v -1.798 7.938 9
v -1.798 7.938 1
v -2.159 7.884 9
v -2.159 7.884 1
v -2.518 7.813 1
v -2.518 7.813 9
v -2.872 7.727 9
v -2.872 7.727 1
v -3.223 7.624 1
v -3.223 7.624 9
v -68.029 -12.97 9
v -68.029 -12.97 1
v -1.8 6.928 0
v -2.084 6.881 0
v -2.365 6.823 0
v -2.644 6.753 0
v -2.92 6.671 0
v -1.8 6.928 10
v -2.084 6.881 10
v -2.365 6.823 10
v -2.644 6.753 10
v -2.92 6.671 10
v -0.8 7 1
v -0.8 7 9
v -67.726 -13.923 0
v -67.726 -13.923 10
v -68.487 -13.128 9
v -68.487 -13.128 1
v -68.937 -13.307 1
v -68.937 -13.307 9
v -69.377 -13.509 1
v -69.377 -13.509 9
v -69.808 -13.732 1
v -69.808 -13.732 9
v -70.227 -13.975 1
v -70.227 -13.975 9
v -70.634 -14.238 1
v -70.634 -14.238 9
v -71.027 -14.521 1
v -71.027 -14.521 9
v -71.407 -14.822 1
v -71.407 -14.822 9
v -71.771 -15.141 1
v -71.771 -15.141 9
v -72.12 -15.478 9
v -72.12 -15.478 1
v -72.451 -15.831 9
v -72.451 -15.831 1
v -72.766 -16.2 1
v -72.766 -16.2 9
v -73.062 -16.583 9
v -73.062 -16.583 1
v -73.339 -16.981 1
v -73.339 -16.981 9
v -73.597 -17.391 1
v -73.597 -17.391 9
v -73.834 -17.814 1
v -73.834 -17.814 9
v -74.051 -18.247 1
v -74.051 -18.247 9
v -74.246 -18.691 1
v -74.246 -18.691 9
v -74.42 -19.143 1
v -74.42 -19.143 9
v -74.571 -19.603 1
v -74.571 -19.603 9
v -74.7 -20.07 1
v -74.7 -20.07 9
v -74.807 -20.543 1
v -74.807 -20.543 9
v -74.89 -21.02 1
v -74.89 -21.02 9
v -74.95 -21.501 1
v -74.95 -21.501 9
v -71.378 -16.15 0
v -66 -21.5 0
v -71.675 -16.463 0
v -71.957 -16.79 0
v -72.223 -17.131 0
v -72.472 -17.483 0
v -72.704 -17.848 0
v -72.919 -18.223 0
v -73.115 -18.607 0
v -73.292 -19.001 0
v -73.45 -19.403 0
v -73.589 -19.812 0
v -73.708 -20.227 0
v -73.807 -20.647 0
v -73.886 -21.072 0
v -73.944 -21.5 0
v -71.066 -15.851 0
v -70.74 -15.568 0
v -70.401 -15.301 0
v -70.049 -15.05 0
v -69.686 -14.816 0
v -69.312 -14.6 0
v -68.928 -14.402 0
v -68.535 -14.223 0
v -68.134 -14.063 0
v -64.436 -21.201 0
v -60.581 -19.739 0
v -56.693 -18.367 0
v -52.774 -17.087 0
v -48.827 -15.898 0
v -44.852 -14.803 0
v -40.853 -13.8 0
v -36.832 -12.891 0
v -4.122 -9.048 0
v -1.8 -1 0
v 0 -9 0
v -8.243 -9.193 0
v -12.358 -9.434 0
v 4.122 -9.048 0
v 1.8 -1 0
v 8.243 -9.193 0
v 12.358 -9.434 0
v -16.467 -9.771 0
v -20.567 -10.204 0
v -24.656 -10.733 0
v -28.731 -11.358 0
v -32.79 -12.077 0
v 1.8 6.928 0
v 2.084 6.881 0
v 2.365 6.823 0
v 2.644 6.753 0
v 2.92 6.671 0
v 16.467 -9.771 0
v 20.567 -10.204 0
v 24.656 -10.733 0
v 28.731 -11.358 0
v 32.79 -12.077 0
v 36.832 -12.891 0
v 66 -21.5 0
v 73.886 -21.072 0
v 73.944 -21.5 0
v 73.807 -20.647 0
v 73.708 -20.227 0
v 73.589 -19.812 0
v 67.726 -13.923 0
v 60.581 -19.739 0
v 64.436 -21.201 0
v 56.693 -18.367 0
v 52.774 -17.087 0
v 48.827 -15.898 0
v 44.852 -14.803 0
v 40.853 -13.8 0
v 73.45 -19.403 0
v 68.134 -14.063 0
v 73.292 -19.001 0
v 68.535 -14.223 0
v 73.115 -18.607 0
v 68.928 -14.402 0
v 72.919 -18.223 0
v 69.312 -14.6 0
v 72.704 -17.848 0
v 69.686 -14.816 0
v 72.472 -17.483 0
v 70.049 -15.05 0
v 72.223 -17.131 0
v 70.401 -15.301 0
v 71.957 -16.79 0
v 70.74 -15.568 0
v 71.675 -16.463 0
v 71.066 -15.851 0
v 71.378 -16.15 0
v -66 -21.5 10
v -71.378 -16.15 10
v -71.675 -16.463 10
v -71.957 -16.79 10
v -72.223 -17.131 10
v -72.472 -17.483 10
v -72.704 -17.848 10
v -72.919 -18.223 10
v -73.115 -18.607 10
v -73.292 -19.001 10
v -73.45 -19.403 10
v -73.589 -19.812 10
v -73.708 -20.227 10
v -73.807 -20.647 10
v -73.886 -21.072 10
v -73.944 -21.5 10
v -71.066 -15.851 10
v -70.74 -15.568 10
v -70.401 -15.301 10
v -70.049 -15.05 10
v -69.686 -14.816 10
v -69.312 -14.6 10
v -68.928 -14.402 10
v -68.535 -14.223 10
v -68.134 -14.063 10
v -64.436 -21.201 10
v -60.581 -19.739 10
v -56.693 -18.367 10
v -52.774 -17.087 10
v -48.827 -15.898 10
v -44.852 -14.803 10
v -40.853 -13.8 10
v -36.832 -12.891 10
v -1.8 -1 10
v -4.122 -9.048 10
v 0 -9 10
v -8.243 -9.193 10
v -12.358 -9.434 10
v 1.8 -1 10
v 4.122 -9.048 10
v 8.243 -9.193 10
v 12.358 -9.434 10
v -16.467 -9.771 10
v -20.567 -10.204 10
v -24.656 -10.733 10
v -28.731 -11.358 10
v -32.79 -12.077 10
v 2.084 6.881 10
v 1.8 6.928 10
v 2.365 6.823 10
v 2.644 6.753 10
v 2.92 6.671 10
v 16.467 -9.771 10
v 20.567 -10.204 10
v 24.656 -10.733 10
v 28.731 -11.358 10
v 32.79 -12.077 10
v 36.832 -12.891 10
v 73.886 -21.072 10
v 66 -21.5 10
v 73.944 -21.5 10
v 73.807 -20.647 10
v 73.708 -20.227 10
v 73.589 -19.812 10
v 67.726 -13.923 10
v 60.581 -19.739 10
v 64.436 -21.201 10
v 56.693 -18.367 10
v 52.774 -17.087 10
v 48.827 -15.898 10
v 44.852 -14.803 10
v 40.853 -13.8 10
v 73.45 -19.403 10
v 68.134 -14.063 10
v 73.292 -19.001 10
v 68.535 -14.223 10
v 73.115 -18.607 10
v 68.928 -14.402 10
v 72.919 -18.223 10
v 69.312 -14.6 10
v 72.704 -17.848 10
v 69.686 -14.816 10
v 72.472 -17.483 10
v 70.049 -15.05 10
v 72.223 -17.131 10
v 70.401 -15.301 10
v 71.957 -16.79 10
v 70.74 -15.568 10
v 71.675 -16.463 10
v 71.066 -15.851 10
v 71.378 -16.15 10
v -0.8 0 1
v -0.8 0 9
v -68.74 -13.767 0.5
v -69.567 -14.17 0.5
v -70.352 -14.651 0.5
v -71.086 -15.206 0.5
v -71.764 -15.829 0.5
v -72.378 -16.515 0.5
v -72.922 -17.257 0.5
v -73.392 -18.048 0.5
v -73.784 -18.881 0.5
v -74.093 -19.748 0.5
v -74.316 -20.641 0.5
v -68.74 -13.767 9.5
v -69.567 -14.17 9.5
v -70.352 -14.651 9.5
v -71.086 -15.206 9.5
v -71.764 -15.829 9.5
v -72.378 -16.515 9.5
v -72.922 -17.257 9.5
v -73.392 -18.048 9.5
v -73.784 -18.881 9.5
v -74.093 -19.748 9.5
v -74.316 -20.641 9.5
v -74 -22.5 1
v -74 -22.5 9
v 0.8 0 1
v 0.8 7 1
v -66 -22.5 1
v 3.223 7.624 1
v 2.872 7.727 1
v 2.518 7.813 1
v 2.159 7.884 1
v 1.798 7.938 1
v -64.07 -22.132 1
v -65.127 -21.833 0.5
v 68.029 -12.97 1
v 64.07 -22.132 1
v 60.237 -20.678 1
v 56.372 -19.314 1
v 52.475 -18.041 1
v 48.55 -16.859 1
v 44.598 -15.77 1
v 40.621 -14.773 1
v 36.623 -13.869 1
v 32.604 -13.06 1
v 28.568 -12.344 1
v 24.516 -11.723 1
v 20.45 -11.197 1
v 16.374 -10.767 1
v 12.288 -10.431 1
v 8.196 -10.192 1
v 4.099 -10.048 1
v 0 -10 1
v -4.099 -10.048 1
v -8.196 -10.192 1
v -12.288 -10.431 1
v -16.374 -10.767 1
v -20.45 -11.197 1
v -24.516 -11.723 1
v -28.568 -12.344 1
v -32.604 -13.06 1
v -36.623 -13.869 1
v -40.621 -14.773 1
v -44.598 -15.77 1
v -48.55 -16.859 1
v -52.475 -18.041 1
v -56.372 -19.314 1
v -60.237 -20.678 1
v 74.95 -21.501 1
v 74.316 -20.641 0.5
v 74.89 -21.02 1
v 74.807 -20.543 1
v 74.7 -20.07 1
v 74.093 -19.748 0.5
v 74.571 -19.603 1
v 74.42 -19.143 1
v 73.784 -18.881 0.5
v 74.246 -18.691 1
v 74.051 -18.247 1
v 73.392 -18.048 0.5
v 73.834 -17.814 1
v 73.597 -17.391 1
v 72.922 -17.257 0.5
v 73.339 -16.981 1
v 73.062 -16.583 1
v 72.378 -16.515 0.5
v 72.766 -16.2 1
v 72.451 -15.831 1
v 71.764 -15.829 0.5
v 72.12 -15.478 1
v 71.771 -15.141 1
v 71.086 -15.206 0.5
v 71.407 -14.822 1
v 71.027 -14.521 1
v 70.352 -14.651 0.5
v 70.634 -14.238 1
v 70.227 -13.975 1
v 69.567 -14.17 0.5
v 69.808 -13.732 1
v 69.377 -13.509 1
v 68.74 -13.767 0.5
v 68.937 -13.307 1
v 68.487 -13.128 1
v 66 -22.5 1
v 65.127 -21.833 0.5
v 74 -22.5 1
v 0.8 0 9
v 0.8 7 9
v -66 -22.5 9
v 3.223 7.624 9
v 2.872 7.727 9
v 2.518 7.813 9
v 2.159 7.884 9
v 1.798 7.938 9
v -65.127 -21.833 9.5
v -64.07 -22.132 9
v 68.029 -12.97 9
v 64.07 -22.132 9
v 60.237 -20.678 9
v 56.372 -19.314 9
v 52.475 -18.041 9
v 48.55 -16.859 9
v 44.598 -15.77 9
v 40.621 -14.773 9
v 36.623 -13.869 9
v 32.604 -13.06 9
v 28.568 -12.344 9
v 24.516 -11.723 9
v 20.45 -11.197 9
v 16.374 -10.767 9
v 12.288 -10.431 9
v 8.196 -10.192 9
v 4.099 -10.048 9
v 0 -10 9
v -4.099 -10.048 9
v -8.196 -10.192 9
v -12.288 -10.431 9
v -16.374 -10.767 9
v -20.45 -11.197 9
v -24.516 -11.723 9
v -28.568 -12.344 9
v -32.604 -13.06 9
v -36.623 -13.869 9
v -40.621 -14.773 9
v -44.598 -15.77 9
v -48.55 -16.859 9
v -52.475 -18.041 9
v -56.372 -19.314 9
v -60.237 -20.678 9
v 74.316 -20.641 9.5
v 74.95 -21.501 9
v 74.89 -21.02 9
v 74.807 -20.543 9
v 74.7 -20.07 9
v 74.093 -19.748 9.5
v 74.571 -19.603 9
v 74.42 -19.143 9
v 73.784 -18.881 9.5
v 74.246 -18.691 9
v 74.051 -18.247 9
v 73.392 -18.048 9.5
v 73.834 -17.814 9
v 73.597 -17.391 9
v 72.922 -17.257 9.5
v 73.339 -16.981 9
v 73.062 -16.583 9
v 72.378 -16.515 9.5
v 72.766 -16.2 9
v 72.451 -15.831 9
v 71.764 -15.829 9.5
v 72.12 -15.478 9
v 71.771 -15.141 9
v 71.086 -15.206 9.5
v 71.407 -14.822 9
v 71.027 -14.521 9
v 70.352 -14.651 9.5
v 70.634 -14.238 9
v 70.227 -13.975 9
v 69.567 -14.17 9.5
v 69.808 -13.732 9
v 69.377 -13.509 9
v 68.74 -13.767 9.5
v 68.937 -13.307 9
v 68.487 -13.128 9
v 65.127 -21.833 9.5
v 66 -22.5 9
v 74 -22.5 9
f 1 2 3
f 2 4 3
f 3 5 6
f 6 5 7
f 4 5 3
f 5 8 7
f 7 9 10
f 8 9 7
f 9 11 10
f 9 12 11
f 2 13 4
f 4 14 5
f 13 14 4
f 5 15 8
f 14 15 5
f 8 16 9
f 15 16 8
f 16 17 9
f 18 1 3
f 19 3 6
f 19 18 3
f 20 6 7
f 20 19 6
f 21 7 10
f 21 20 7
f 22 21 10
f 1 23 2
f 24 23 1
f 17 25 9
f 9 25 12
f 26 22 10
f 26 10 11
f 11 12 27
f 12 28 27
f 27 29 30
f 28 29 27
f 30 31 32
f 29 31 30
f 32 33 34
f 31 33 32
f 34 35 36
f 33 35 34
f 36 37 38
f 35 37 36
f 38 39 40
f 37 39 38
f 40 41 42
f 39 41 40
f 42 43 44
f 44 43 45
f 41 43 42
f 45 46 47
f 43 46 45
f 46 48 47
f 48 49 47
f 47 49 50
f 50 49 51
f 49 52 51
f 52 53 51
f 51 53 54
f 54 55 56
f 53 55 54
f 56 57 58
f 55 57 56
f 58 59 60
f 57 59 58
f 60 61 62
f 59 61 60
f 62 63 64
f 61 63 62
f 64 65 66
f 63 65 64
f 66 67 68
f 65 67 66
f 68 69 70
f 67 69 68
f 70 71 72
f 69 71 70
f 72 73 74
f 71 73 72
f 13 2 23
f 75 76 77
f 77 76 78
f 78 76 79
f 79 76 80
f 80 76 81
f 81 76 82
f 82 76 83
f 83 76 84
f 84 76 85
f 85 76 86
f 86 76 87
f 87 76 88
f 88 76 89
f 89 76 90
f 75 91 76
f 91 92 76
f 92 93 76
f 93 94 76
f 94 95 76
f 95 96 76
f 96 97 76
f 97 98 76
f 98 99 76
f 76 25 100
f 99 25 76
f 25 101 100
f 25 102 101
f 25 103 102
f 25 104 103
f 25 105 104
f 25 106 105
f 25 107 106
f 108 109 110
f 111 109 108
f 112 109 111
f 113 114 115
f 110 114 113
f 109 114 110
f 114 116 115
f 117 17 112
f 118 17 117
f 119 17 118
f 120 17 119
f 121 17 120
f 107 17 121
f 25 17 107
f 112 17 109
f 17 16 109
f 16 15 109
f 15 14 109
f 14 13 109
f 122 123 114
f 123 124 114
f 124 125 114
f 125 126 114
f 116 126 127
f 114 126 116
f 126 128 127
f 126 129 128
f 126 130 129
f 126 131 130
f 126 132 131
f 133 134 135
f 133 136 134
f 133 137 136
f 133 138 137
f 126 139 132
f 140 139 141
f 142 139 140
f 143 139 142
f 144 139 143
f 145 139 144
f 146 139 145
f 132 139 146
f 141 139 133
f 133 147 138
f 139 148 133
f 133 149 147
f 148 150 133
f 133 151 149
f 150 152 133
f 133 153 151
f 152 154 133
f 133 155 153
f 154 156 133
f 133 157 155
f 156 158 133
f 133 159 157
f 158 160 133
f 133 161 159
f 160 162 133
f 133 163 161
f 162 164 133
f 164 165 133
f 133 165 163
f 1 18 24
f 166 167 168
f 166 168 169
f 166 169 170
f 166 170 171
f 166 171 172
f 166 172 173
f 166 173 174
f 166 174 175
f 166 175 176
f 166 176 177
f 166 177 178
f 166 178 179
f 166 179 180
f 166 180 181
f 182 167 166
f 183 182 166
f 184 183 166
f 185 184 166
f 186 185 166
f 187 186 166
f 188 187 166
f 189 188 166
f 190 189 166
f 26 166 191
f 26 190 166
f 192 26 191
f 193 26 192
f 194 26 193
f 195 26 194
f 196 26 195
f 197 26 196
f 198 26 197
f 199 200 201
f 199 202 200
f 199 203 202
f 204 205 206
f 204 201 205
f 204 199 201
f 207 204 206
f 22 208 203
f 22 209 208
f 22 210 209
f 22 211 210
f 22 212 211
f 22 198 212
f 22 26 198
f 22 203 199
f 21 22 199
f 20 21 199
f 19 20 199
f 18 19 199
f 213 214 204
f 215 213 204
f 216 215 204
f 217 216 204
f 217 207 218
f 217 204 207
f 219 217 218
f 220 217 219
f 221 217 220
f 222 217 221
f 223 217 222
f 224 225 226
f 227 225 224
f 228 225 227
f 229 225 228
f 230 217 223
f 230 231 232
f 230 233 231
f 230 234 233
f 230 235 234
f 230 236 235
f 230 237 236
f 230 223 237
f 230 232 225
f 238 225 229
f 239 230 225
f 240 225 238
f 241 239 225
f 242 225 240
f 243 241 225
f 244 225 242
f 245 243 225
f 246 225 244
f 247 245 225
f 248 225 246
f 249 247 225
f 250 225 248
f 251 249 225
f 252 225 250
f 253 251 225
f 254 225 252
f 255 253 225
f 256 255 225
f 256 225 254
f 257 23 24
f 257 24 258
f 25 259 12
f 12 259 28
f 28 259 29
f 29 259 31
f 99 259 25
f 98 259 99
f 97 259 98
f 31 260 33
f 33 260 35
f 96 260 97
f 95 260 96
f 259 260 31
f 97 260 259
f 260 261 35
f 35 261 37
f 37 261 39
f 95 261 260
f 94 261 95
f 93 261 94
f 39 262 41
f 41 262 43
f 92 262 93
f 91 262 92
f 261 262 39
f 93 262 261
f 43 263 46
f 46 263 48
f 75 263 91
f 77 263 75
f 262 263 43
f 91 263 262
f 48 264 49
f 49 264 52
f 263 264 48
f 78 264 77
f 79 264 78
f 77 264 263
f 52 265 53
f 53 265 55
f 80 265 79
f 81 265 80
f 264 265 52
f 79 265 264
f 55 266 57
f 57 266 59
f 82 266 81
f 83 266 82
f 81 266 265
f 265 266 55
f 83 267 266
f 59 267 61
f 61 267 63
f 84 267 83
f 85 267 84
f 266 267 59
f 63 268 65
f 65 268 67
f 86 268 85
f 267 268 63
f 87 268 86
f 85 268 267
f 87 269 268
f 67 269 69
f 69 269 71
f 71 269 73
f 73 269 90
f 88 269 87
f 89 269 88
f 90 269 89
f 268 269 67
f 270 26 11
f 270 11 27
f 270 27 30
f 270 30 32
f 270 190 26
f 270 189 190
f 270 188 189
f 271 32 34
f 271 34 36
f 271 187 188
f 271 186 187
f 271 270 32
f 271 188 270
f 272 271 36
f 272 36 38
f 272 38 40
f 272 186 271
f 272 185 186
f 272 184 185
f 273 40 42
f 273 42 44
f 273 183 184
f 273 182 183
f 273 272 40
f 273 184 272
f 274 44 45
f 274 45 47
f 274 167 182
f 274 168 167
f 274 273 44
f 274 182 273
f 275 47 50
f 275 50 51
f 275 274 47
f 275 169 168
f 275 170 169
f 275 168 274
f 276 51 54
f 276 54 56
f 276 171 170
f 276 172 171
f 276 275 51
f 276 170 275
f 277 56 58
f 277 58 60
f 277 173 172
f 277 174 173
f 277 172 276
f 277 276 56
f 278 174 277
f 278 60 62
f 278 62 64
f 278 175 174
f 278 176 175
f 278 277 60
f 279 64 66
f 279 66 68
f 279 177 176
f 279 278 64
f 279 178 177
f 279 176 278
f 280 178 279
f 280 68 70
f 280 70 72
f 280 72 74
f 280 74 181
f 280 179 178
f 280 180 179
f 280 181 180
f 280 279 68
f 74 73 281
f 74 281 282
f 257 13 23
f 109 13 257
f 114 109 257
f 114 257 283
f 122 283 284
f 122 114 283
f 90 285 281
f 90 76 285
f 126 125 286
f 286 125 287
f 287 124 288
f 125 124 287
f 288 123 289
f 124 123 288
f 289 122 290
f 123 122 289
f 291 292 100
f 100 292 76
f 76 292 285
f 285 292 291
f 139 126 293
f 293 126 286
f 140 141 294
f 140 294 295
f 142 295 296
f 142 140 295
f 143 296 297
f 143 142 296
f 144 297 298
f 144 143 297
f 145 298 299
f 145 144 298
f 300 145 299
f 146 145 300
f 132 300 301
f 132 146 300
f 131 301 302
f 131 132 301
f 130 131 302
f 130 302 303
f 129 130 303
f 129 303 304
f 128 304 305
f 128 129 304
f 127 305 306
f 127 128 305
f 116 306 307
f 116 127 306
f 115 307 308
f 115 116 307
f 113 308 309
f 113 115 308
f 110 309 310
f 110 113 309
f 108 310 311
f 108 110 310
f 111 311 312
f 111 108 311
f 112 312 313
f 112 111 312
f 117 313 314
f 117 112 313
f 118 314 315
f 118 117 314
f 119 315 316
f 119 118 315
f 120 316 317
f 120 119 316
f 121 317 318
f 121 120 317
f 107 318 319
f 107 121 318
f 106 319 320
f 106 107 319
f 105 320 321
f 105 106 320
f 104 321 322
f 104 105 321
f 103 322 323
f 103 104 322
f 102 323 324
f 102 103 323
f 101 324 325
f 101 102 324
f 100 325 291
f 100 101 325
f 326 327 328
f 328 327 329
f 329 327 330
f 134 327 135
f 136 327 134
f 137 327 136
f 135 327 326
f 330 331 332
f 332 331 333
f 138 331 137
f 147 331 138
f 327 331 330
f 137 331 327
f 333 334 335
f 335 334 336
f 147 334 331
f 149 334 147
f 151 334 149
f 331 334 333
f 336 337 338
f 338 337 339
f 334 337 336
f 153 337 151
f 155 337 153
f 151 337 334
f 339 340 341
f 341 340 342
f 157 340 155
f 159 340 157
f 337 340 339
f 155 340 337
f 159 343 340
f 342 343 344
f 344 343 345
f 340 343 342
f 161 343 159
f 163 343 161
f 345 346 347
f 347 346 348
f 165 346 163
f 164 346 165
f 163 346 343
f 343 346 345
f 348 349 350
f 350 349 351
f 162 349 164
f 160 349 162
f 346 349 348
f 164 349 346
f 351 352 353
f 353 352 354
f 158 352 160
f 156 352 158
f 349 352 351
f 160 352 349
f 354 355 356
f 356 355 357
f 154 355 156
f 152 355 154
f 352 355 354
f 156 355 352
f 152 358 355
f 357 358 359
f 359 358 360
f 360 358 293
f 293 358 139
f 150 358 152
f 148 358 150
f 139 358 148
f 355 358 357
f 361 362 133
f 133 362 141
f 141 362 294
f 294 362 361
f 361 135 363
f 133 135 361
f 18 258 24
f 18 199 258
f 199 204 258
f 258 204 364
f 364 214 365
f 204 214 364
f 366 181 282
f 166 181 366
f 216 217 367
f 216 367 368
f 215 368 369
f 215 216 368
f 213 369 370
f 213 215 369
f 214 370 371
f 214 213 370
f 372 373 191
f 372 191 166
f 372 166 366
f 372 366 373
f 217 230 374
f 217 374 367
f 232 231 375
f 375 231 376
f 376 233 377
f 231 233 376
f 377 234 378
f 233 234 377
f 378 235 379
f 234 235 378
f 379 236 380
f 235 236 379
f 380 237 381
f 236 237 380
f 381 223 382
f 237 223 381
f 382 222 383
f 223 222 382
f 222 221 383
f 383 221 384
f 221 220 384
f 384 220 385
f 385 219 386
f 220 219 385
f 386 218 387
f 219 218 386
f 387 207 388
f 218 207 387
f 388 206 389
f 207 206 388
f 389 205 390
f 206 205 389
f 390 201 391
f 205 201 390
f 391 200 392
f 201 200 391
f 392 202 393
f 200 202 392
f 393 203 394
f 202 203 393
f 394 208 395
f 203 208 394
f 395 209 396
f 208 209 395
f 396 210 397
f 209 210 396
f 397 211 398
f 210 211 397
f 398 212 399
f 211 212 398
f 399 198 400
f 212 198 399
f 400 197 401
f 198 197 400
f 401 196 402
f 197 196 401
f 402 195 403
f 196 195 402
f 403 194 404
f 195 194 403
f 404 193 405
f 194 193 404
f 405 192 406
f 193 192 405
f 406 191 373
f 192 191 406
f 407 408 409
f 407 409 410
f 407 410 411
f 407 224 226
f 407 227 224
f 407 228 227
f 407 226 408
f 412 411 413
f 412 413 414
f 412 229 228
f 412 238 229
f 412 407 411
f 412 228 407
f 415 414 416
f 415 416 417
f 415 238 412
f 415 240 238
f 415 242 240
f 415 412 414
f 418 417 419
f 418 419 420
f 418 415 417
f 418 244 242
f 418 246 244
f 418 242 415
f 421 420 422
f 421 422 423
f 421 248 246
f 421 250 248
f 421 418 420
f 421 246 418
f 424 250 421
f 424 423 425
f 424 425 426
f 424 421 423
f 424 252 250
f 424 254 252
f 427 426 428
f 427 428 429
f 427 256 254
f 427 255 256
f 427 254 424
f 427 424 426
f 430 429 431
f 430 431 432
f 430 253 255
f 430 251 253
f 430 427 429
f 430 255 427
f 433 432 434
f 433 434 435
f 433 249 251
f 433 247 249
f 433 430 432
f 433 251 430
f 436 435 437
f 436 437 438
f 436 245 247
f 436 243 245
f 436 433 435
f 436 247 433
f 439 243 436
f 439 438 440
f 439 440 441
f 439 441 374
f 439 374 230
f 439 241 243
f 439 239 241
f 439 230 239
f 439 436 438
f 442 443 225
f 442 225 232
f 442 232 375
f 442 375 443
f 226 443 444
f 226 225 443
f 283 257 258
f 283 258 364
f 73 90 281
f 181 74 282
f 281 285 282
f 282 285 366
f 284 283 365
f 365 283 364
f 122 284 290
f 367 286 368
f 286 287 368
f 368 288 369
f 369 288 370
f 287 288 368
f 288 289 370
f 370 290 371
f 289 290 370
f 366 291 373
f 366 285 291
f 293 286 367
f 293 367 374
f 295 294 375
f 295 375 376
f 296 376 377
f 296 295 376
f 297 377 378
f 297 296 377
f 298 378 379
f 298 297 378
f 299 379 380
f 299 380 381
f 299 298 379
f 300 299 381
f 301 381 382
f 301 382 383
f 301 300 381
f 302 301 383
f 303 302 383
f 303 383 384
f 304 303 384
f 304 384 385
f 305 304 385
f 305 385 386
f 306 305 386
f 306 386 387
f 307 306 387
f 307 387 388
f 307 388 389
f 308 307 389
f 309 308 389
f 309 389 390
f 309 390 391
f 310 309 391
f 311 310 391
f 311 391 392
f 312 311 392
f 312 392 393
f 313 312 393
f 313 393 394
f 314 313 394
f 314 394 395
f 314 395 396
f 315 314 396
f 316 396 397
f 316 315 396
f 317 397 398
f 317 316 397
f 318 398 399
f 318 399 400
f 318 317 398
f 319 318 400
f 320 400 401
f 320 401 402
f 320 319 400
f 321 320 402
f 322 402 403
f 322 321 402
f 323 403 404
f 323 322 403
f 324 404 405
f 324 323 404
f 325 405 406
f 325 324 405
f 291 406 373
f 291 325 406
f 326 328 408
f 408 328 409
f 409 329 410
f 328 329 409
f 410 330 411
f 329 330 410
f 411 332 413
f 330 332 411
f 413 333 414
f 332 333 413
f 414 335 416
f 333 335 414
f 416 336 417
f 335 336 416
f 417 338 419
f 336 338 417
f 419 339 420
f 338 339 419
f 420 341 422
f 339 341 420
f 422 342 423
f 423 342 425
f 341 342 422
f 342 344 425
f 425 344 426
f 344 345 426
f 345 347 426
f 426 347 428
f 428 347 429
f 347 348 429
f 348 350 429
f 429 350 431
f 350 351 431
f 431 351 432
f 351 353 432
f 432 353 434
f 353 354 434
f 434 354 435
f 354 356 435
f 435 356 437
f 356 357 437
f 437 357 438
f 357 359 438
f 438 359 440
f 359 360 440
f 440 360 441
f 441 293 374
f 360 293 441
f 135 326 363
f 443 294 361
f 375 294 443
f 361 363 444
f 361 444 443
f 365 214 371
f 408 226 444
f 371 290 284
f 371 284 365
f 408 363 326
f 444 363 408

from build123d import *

# Parameters (mm, degrees)
PAD_DEPTH    = 10
CHAMFER_SIZE = 1


with BuildPart() as part:
    # Sketch → Pad (new body)
    with BuildSketch(Plane.XY):
        with BuildLine():
            Line((-0.8, 8), (-0.8, 0))
            Line((-0.8, 0), (0.8, 0))
            Line((0.8, 8), (0.8, 0))
            ThreePointArc((3.222844, 7.624292), (2.025901, 7.905515), (0.8, 8))
            Line((3.222844, 7.624292), (68.028555, -12.969635))
            ThreePointArc((75, -22.5), (73.071107, -16.595999), (68.028555, -12.969635))
            Line((75, -22.5), (65, -22.5))
            ThreePointArc((65, -22.5), (0, -10), (-65, -22.5))
            Line((-75, -22.5), (-65, -22.5))
            ThreePointArc((-68.028555, -12.969635), (-73.071107, -16.595999), (-75, -22.5))
            Line((-3.222844, 7.624292), (-68.028555, -12.969635))
            ThreePointArc((-0.8, 8), (-2.025901, 7.905515), (-3.222844, 7.624292))
        make_face()
    extrude(amount=PAD_DEPTH)

    # Chamfer
    chamfer_edges = [part.edges().sort_by_distance(p)[0] for p in [
        (-2.025901, 7.905515, 10),
        (-0.8, 4, 10),
        (0, 0, 10),
        (0.8, 4, 10),
        (2.025901, 7.905515, 10),
        (35.625699, -2.672672, 10),
        (73.071107, -16.595999, 10),
        (70, -22.5, 10),
        (0, -10, 10),
        (-70, -22.5, 10),
        (-73.071107, -16.595999, 10),
        (-35.625699, -2.672672, 10),
        (-2.025901, 7.905515, 0),
        (-0.8, 4, 0),
        (0, 0, 0),
        (0.8, 4, 0),
        (2.025901, 7.905515, 0),
        (35.625699, -2.672672, 0),
        (73.071107, -16.595999, 0),
        (70, -22.5, 0),
        (0, -10, 0),
        (-70, -22.5, 0),
        (-73.071107, -16.595999, 0),
        (-35.625699, -2.672672, 0),
        (-0.8, 8, 5),
        (0.8, 8, 5),
        (-75, -22.5, 5),
        (-65, -22.5, 5),
        (65, -22.5, 5),
        (75, -22.5, 5),
    ]]
    chamfer(chamfer_edges, length=CHAMFER_SIZE)


solid = part.part
